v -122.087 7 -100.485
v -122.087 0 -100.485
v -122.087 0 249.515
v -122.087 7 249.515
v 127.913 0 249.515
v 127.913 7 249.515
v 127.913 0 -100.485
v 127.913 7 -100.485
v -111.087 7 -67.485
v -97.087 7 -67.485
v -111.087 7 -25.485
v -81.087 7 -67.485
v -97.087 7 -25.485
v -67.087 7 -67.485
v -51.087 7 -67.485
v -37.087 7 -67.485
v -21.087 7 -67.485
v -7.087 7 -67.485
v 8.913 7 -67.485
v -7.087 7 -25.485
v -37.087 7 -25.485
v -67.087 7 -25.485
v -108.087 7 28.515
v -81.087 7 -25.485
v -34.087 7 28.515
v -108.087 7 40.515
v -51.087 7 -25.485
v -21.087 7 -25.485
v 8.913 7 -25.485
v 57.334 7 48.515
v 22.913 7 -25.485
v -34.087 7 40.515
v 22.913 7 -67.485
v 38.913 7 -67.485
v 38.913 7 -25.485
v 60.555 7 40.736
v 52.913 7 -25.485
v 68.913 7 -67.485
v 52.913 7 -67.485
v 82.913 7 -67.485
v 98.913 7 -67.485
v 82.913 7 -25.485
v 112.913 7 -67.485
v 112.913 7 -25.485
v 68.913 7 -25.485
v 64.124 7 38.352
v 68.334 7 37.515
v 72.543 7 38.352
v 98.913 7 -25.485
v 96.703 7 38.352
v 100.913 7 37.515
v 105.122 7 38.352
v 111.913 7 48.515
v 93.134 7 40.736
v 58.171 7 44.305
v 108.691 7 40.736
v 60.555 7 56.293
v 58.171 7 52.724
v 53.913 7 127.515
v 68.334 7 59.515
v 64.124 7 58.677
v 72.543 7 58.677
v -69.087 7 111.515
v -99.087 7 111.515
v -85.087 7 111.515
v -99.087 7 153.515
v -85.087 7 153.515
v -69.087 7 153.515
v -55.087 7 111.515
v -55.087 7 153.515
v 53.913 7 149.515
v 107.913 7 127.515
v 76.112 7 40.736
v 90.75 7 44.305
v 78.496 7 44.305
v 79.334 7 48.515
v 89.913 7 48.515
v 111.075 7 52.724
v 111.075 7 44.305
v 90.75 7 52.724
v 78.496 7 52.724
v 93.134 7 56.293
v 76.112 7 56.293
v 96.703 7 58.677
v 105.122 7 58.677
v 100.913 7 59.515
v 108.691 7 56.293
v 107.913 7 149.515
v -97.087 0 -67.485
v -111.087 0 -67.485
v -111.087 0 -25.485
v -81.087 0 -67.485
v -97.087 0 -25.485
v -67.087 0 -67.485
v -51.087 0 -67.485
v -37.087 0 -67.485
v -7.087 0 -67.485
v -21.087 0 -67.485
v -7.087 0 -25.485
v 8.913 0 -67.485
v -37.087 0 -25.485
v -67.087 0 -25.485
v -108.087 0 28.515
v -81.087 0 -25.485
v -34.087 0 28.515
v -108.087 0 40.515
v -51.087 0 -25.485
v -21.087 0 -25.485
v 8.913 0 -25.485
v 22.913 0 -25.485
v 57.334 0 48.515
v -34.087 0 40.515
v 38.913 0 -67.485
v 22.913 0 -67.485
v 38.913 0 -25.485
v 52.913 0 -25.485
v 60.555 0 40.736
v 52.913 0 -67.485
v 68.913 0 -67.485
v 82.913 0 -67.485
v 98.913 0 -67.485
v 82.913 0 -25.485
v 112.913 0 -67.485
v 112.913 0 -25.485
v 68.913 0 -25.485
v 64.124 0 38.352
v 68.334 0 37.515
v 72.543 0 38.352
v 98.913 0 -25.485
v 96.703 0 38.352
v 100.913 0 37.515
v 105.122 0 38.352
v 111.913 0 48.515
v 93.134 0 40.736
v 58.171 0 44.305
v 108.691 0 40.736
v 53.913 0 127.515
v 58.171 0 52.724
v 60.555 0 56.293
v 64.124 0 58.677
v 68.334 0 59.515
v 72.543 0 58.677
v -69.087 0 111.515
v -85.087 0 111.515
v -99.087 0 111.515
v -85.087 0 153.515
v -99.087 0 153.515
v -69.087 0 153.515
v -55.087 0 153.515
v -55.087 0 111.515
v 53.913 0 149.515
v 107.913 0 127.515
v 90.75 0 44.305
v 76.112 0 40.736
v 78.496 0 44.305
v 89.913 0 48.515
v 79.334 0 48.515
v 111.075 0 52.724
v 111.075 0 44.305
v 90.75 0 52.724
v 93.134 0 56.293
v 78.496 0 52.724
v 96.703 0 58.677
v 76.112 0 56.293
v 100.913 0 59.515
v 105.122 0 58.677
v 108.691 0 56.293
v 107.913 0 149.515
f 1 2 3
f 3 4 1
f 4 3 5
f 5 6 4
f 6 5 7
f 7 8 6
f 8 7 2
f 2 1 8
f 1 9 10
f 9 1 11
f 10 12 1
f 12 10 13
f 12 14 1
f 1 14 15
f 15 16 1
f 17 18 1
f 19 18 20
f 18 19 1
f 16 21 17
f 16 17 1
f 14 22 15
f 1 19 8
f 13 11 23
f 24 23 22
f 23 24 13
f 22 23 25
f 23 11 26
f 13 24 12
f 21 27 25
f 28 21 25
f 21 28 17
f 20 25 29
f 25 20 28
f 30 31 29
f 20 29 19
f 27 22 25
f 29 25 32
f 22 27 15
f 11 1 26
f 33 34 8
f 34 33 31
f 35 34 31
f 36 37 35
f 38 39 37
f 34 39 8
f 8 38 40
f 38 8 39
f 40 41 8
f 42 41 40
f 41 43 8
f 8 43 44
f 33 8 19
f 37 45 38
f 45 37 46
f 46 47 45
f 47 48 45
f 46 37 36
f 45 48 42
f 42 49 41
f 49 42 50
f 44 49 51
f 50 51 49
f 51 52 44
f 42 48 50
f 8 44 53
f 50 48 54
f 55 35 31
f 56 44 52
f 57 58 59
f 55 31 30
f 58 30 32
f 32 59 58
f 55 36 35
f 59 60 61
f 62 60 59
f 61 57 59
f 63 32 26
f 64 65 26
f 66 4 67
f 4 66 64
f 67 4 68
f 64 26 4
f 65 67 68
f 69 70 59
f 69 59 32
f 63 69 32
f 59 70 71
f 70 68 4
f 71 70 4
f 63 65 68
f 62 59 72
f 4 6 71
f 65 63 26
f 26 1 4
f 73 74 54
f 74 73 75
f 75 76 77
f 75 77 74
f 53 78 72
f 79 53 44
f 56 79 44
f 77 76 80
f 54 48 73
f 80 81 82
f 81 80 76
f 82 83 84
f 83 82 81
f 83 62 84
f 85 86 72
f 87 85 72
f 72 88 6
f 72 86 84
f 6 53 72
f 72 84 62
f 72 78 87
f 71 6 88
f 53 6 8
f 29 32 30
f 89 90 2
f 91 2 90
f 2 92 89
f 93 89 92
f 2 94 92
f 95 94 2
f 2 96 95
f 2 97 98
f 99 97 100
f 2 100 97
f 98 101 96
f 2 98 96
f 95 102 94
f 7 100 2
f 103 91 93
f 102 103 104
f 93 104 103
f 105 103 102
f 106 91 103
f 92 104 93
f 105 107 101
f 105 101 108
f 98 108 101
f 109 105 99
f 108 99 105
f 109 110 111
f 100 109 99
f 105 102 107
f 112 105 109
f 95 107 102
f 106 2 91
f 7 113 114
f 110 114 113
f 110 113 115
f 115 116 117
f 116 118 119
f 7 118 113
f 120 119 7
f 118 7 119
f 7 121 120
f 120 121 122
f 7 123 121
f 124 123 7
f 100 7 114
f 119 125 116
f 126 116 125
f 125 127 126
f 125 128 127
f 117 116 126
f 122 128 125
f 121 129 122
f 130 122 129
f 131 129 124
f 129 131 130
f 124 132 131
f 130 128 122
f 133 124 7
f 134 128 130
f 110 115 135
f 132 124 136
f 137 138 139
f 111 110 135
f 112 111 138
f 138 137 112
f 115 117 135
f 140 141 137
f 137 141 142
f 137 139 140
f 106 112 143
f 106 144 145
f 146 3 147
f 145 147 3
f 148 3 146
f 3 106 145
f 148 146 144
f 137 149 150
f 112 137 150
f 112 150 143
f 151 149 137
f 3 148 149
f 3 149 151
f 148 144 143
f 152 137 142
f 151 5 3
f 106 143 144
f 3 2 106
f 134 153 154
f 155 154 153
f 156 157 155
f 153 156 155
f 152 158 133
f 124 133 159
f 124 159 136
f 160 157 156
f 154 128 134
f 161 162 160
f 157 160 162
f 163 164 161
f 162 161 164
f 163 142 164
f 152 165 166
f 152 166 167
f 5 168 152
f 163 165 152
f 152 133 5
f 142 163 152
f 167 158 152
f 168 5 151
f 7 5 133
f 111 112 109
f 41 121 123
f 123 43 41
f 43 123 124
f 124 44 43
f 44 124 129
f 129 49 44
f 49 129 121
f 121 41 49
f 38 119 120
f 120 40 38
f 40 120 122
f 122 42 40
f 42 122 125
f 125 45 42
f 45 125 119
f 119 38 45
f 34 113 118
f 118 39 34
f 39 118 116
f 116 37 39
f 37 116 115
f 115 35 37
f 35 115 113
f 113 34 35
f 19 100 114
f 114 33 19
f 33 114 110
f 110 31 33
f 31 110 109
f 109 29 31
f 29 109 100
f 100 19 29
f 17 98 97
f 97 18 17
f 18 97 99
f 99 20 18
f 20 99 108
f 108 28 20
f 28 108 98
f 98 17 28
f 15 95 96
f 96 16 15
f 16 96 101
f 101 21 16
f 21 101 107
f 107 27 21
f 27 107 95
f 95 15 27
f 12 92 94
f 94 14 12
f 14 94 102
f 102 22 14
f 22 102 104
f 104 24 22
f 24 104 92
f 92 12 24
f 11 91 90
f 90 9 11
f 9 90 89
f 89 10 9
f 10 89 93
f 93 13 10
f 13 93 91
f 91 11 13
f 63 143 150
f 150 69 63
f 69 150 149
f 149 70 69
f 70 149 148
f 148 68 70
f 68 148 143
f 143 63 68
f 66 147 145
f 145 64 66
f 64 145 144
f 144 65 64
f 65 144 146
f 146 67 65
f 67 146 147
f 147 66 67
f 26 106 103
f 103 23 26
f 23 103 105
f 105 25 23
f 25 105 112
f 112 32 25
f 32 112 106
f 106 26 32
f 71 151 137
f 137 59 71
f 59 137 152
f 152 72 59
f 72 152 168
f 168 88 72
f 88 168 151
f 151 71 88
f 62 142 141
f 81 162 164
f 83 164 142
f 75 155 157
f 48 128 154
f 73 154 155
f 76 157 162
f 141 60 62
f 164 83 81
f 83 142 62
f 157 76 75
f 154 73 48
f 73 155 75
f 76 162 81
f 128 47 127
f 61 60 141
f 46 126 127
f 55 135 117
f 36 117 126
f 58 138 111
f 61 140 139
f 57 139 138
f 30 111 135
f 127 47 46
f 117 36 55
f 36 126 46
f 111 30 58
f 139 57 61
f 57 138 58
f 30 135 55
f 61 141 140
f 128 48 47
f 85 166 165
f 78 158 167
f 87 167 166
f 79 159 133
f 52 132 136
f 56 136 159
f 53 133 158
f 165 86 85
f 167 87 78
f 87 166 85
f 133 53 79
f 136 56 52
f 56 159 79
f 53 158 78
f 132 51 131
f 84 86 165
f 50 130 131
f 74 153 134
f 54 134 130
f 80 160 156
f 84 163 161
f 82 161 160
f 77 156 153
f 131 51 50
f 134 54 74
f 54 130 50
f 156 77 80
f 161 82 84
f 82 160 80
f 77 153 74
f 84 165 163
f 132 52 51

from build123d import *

# Parameters (mm, degrees)
SKETCH1_W           = 250
SKETCH1_H           = 350
BOSS_EXTRUDE1_DEPTH = 7
SKETCH2_W           = 14
SKETCH2_H           = 42
CUT_EXTRUDE1_DEPTH  = 281.478441071
SKETCH3_W           = 14
SKETCH3_H           = 42
CUT_EXTRUDE2_DEPTH  = 281.478441071
SKETCH4_W           = 74
SKETCH4_H           = 12
CUT_EXTRUDE3_DEPTH  = 281.478441071
SKETCH5_W           = 54
SKETCH5_H           = 22
CUT_EXTRUDE4_DEPTH  = 281.478441071
SKETCH6_R           = 11
CUT_EXTRUDE5_DEPTH  = 281.478441071


with BuildPart() as part:
    # Sketch1 → Boss-Extrude1 (new body)
    with BuildSketch(Plane(origin=(0, 0, 0), x_dir=(1, 0, 0), z_dir=(0, 1, 0))):
        with Locations((2.912621359, -74.514563107)):
            Rectangle(SKETCH1_W, SKETCH1_H)
    extrude(amount=BOSS_EXTRUDE1_DEPTH)

    # Sketch2 → Cut-Extrude1 (cut, through all)
    with BuildSketch(Plane(origin=(0, 7, 0), x_dir=(1, 0, 0), z_dir=(0, 1, 0))):
        with Locations((-104.087378641, 46.485436893)):
            Rectangle(SKETCH2_W, SKETCH2_H)
        with Locations((-74.087378641, 46.485436893)):
            Rectangle(SKETCH2_W, SKETCH2_H)
        with Locations((-44.087378641, 46.485436893)):
            Rectangle(SKETCH2_W, SKETCH2_H)
        with Locations((-14.087378641, 46.485436893)):
            Rectangle(SKETCH2_W, SKETCH2_H)
        with Locations((15.912621359, 46.485436893)):
            Rectangle(SKETCH2_W, SKETCH2_H)
        with Locations((45.912621359, 46.485436893)):
            Rectangle(SKETCH2_W, SKETCH2_H)
        with Locations((75.912621359, 46.485436893)):
            Rectangle(SKETCH2_W, SKETCH2_H)
        with Locations((105.912621359, 46.485436893)):
            Rectangle(SKETCH2_W, SKETCH2_H)
    extrude(amount=-CUT_EXTRUDE1_DEPTH, mode=Mode.SUBTRACT)

    # Sketch3 → Cut-Extrude2 (cut, through all)
    with BuildSketch(Plane(origin=(0, 7, 0), x_dir=(1, 0, 0), z_dir=(0, 1, 0))):
        with Locations((-92.087378641, -132.514563107)):
            Rectangle(SKETCH3_W, SKETCH3_H)
        with Locations((-62.087378641, -132.514563107)):
            Rectangle(SKETCH3_W, SKETCH3_H)
    extrude(amount=-CUT_EXTRUDE2_DEPTH, mode=Mode.SUBTRACT)

    # Sketch4 → Cut-Extrude3 (cut, through all)
    with BuildSketch(Plane(origin=(0, 7, 0), x_dir=(1, 0, 0), z_dir=(0, 1, 0))):
        with Locations((-71.087378641, -34.514563107)):
            Rectangle(SKETCH4_W, SKETCH4_H)
    extrude(amount=-CUT_EXTRUDE3_DEPTH, mode=Mode.SUBTRACT)

    # Sketch5 → Cut-Extrude4 (cut, through all)
    with BuildSketch(Plane(origin=(0, 7, 0), x_dir=(1, 0, 0), z_dir=(0, 1, 0))):
        with Locations((80.912621359, -138.514563107)):
            Rectangle(SKETCH5_W, SKETCH5_H)
    extrude(amount=-CUT_EXTRUDE4_DEPTH, mode=Mode.SUBTRACT)

    # Sketch6 → Cut-Extrude5 (cut, through all)
    with BuildSketch(Plane(origin=(0, 7, 0), x_dir=(1, 0, 0), z_dir=(0, 1, 0))):
        with Locations(Location((100.912621359, -48.514563107, 0), (0, 0, 270))):
            Circle(SKETCH6_R)
        with Locations(Location((68.333659496, -48.514563107, 0), (0, 0, 270))):
            Circle(SKETCH6_R)
    extrude(amount=-CUT_EXTRUDE5_DEPTH, mode=Mode.SUBTRACT)


solid = part.part
